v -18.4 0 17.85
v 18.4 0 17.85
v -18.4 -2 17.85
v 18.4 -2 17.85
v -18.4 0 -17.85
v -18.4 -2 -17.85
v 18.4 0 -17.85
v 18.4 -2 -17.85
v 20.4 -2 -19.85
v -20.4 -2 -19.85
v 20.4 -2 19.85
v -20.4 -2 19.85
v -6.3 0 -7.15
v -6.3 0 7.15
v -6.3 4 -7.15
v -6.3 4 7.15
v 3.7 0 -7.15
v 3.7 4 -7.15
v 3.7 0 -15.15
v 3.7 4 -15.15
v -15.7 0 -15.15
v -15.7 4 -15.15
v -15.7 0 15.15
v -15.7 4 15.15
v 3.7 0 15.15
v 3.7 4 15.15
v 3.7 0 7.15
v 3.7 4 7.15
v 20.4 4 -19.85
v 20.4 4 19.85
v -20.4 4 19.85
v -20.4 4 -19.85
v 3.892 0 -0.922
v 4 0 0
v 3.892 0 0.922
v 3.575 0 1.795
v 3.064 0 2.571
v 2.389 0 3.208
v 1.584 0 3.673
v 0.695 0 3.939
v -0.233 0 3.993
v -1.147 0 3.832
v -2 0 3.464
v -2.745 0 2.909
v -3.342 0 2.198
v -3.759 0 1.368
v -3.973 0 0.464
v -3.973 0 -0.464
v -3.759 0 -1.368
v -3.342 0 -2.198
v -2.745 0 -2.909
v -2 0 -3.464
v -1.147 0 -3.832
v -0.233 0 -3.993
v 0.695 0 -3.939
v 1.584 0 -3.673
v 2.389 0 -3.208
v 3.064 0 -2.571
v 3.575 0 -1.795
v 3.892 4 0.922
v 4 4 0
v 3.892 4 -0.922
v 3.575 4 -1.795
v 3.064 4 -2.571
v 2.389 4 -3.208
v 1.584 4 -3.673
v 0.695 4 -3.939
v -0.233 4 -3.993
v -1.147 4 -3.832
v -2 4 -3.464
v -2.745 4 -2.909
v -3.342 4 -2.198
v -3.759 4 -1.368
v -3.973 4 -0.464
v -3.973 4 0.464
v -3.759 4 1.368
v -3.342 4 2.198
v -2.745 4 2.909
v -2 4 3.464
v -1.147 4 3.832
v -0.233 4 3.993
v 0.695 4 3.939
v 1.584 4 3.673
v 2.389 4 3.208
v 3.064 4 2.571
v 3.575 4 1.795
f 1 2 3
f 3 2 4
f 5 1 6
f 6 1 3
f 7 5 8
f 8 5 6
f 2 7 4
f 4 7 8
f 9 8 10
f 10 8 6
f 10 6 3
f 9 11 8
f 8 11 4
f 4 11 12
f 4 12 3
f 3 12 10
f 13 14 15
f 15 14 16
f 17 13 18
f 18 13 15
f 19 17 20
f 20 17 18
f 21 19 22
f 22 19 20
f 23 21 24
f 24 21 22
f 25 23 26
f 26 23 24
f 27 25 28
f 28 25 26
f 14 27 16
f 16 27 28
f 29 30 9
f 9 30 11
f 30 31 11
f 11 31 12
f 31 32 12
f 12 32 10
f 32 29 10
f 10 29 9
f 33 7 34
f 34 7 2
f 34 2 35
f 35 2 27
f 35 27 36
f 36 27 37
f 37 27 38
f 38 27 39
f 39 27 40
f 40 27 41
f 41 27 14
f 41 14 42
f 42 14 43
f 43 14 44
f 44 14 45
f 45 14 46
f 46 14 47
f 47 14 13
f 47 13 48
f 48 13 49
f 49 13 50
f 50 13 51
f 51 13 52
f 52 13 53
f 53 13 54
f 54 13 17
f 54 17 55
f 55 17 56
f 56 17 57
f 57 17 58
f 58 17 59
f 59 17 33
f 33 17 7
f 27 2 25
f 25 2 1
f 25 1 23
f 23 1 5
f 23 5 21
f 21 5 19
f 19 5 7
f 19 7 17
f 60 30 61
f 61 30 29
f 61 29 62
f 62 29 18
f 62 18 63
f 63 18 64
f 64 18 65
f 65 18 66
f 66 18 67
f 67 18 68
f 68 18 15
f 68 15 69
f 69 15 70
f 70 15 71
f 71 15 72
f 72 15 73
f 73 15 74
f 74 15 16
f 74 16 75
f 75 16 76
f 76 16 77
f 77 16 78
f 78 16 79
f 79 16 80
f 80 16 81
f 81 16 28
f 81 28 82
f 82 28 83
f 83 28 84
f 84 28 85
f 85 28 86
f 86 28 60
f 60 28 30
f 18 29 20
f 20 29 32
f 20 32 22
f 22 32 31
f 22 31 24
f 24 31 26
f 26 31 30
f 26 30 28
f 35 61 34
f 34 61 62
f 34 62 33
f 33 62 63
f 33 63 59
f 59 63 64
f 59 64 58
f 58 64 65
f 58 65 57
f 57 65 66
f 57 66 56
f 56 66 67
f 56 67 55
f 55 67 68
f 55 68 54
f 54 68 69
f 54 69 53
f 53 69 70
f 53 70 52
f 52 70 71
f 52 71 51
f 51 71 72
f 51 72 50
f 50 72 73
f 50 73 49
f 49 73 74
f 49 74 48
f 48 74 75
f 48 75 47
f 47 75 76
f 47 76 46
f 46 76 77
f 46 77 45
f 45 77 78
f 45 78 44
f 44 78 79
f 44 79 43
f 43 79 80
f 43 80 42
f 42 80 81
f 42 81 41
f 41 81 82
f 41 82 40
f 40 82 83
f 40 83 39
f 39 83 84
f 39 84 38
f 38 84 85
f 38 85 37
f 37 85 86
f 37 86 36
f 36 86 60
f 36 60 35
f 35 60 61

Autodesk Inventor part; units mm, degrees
ref_plane "YZ Plane" through (0, 0, 0) normal (1, 0, 0) x (0, 1, 0)
ref_plane "XZ Plane" through (0, 0, 0) normal (0, 1, 0) x (-1, 0, 0)
ref_plane "XY Plane" through (0, 0, 0) normal (0, 0, 1) x (1, 0, 0)
sketch "Sketch1" plane through (0, 0, 0) normal (0, 1, 0) x (-1, 0, 0)
  line L0 (17.7, -17.15) -> (-17.7, -17.15)
  line L1 (-17.7, -17.15) -> (-17.7, 17.15)
  line L2 (-17.7, 17.15) -> (17.7, 17.15)
  line L3 (17.7, 17.15) -> (17.7, -17.15)
  line L4 (28.56, 0) -> (-28.56, 0) projected
  line L5 (0, -27.79) -> (0, 27.79) projected
  line L6 (-3.7, 7.15) -> (6.3, 7.15)
  line L7 (6.3, 7.15) -> (6.3, -7.15)
  line L8 (6.3, -7.15) -> (-3.7, -7.15)
  line L9 (-3.7, -15.15) -> (-3.7, -7.15)
  line L10 (-3.7, 7.15) -> (-3.7, 15.15)
  line L11 (15.7, 15.15) -> (-3.7, 15.15)
  line L12 (-3.7, -15.15) -> (15.7, -15.15)
  line L13 (15.7, -15.15) -> (15.7, 15.15)
  line L14 (-18.4, -17.85) -> (18.4, -17.85)
  line L15 (18.4, -17.85) -> (18.4, 17.85)
  line L16 (18.4, 17.85) -> (-18.4, 17.85)
  line L17 (-18.4, 17.85) -> (-18.4, -17.85)
  line L18 (20.4, -19.85) -> (-20.4, -19.85)
  line L19 (-20.4, -19.85) -> (-20.4, 19.85)
  line L20 (-20.4, 19.85) -> (20.4, 19.85)
  line L21 (20.4, 19.85) -> (20.4, -19.85)
  point P0 (0, 0)
  dimension "d0" = 34.3
  dimension "d1" = 35.4
  dimension "d3" = 10
  dimension "d4" = 10
  dimension "d5" = 24
  dimension "d6" = 14
  dimension "d7" = 14
  dimension "d8" = 2
  dimension "d9" = 2
  dimension "d10" = 2
  dimension "d11" = 0.7
  dimension "d12" = 2
extrude "Extrusion1" add sketch "Sketch1" along normal blind 4 contours L3 L4 L15 L14 L5 L0 | L0 L5 L12 L13 L4 L3 | L5 L14 L17 L4 L1 L0 | L0 L1 L4 L5 L8 L9 L12 | L4 L13 L11 L5 L2 L3 | L3 L2 L5 L16 L15 L4 | L14 L15 L4 L21 L18 L5 | L5 L18 L19 L4 L17 L14 | L15 L16 L5 L20 L21 L4 | L4 L17 L16 L5 L2 L1 | L1 L2 L5 L11 L10 L6 L4 | L5 L4 L7 L8 | L4 L5 L6 L7 | L4 L19 L20 L5 L16 L17
extrude "Extrusion2" add sketch "Sketch1" against normal blind 2 contours L14 L15 L4 L21 L18 L5 | L5 L18 L19 L4 L17 L14 | L15 L16 L5 L20 L21 L4 | L4 L19 L20 L5 L16 L17
sketch "Sketch3" plane through (0, 4, 0) normal (0, 1, 0) x (1, 0, 0)
  line L0 (-28.56, 0) -> (28.56, 0) projected
  line L1 (0, 27.79) -> (0, -27.79) projected
  circle A0 centre (0, 0) radius 4
  dimension "d17" = 8
extrude "Extrusion3" cut sketch "Sketch3" against normal blind 4
properties part number "cam_socket"
